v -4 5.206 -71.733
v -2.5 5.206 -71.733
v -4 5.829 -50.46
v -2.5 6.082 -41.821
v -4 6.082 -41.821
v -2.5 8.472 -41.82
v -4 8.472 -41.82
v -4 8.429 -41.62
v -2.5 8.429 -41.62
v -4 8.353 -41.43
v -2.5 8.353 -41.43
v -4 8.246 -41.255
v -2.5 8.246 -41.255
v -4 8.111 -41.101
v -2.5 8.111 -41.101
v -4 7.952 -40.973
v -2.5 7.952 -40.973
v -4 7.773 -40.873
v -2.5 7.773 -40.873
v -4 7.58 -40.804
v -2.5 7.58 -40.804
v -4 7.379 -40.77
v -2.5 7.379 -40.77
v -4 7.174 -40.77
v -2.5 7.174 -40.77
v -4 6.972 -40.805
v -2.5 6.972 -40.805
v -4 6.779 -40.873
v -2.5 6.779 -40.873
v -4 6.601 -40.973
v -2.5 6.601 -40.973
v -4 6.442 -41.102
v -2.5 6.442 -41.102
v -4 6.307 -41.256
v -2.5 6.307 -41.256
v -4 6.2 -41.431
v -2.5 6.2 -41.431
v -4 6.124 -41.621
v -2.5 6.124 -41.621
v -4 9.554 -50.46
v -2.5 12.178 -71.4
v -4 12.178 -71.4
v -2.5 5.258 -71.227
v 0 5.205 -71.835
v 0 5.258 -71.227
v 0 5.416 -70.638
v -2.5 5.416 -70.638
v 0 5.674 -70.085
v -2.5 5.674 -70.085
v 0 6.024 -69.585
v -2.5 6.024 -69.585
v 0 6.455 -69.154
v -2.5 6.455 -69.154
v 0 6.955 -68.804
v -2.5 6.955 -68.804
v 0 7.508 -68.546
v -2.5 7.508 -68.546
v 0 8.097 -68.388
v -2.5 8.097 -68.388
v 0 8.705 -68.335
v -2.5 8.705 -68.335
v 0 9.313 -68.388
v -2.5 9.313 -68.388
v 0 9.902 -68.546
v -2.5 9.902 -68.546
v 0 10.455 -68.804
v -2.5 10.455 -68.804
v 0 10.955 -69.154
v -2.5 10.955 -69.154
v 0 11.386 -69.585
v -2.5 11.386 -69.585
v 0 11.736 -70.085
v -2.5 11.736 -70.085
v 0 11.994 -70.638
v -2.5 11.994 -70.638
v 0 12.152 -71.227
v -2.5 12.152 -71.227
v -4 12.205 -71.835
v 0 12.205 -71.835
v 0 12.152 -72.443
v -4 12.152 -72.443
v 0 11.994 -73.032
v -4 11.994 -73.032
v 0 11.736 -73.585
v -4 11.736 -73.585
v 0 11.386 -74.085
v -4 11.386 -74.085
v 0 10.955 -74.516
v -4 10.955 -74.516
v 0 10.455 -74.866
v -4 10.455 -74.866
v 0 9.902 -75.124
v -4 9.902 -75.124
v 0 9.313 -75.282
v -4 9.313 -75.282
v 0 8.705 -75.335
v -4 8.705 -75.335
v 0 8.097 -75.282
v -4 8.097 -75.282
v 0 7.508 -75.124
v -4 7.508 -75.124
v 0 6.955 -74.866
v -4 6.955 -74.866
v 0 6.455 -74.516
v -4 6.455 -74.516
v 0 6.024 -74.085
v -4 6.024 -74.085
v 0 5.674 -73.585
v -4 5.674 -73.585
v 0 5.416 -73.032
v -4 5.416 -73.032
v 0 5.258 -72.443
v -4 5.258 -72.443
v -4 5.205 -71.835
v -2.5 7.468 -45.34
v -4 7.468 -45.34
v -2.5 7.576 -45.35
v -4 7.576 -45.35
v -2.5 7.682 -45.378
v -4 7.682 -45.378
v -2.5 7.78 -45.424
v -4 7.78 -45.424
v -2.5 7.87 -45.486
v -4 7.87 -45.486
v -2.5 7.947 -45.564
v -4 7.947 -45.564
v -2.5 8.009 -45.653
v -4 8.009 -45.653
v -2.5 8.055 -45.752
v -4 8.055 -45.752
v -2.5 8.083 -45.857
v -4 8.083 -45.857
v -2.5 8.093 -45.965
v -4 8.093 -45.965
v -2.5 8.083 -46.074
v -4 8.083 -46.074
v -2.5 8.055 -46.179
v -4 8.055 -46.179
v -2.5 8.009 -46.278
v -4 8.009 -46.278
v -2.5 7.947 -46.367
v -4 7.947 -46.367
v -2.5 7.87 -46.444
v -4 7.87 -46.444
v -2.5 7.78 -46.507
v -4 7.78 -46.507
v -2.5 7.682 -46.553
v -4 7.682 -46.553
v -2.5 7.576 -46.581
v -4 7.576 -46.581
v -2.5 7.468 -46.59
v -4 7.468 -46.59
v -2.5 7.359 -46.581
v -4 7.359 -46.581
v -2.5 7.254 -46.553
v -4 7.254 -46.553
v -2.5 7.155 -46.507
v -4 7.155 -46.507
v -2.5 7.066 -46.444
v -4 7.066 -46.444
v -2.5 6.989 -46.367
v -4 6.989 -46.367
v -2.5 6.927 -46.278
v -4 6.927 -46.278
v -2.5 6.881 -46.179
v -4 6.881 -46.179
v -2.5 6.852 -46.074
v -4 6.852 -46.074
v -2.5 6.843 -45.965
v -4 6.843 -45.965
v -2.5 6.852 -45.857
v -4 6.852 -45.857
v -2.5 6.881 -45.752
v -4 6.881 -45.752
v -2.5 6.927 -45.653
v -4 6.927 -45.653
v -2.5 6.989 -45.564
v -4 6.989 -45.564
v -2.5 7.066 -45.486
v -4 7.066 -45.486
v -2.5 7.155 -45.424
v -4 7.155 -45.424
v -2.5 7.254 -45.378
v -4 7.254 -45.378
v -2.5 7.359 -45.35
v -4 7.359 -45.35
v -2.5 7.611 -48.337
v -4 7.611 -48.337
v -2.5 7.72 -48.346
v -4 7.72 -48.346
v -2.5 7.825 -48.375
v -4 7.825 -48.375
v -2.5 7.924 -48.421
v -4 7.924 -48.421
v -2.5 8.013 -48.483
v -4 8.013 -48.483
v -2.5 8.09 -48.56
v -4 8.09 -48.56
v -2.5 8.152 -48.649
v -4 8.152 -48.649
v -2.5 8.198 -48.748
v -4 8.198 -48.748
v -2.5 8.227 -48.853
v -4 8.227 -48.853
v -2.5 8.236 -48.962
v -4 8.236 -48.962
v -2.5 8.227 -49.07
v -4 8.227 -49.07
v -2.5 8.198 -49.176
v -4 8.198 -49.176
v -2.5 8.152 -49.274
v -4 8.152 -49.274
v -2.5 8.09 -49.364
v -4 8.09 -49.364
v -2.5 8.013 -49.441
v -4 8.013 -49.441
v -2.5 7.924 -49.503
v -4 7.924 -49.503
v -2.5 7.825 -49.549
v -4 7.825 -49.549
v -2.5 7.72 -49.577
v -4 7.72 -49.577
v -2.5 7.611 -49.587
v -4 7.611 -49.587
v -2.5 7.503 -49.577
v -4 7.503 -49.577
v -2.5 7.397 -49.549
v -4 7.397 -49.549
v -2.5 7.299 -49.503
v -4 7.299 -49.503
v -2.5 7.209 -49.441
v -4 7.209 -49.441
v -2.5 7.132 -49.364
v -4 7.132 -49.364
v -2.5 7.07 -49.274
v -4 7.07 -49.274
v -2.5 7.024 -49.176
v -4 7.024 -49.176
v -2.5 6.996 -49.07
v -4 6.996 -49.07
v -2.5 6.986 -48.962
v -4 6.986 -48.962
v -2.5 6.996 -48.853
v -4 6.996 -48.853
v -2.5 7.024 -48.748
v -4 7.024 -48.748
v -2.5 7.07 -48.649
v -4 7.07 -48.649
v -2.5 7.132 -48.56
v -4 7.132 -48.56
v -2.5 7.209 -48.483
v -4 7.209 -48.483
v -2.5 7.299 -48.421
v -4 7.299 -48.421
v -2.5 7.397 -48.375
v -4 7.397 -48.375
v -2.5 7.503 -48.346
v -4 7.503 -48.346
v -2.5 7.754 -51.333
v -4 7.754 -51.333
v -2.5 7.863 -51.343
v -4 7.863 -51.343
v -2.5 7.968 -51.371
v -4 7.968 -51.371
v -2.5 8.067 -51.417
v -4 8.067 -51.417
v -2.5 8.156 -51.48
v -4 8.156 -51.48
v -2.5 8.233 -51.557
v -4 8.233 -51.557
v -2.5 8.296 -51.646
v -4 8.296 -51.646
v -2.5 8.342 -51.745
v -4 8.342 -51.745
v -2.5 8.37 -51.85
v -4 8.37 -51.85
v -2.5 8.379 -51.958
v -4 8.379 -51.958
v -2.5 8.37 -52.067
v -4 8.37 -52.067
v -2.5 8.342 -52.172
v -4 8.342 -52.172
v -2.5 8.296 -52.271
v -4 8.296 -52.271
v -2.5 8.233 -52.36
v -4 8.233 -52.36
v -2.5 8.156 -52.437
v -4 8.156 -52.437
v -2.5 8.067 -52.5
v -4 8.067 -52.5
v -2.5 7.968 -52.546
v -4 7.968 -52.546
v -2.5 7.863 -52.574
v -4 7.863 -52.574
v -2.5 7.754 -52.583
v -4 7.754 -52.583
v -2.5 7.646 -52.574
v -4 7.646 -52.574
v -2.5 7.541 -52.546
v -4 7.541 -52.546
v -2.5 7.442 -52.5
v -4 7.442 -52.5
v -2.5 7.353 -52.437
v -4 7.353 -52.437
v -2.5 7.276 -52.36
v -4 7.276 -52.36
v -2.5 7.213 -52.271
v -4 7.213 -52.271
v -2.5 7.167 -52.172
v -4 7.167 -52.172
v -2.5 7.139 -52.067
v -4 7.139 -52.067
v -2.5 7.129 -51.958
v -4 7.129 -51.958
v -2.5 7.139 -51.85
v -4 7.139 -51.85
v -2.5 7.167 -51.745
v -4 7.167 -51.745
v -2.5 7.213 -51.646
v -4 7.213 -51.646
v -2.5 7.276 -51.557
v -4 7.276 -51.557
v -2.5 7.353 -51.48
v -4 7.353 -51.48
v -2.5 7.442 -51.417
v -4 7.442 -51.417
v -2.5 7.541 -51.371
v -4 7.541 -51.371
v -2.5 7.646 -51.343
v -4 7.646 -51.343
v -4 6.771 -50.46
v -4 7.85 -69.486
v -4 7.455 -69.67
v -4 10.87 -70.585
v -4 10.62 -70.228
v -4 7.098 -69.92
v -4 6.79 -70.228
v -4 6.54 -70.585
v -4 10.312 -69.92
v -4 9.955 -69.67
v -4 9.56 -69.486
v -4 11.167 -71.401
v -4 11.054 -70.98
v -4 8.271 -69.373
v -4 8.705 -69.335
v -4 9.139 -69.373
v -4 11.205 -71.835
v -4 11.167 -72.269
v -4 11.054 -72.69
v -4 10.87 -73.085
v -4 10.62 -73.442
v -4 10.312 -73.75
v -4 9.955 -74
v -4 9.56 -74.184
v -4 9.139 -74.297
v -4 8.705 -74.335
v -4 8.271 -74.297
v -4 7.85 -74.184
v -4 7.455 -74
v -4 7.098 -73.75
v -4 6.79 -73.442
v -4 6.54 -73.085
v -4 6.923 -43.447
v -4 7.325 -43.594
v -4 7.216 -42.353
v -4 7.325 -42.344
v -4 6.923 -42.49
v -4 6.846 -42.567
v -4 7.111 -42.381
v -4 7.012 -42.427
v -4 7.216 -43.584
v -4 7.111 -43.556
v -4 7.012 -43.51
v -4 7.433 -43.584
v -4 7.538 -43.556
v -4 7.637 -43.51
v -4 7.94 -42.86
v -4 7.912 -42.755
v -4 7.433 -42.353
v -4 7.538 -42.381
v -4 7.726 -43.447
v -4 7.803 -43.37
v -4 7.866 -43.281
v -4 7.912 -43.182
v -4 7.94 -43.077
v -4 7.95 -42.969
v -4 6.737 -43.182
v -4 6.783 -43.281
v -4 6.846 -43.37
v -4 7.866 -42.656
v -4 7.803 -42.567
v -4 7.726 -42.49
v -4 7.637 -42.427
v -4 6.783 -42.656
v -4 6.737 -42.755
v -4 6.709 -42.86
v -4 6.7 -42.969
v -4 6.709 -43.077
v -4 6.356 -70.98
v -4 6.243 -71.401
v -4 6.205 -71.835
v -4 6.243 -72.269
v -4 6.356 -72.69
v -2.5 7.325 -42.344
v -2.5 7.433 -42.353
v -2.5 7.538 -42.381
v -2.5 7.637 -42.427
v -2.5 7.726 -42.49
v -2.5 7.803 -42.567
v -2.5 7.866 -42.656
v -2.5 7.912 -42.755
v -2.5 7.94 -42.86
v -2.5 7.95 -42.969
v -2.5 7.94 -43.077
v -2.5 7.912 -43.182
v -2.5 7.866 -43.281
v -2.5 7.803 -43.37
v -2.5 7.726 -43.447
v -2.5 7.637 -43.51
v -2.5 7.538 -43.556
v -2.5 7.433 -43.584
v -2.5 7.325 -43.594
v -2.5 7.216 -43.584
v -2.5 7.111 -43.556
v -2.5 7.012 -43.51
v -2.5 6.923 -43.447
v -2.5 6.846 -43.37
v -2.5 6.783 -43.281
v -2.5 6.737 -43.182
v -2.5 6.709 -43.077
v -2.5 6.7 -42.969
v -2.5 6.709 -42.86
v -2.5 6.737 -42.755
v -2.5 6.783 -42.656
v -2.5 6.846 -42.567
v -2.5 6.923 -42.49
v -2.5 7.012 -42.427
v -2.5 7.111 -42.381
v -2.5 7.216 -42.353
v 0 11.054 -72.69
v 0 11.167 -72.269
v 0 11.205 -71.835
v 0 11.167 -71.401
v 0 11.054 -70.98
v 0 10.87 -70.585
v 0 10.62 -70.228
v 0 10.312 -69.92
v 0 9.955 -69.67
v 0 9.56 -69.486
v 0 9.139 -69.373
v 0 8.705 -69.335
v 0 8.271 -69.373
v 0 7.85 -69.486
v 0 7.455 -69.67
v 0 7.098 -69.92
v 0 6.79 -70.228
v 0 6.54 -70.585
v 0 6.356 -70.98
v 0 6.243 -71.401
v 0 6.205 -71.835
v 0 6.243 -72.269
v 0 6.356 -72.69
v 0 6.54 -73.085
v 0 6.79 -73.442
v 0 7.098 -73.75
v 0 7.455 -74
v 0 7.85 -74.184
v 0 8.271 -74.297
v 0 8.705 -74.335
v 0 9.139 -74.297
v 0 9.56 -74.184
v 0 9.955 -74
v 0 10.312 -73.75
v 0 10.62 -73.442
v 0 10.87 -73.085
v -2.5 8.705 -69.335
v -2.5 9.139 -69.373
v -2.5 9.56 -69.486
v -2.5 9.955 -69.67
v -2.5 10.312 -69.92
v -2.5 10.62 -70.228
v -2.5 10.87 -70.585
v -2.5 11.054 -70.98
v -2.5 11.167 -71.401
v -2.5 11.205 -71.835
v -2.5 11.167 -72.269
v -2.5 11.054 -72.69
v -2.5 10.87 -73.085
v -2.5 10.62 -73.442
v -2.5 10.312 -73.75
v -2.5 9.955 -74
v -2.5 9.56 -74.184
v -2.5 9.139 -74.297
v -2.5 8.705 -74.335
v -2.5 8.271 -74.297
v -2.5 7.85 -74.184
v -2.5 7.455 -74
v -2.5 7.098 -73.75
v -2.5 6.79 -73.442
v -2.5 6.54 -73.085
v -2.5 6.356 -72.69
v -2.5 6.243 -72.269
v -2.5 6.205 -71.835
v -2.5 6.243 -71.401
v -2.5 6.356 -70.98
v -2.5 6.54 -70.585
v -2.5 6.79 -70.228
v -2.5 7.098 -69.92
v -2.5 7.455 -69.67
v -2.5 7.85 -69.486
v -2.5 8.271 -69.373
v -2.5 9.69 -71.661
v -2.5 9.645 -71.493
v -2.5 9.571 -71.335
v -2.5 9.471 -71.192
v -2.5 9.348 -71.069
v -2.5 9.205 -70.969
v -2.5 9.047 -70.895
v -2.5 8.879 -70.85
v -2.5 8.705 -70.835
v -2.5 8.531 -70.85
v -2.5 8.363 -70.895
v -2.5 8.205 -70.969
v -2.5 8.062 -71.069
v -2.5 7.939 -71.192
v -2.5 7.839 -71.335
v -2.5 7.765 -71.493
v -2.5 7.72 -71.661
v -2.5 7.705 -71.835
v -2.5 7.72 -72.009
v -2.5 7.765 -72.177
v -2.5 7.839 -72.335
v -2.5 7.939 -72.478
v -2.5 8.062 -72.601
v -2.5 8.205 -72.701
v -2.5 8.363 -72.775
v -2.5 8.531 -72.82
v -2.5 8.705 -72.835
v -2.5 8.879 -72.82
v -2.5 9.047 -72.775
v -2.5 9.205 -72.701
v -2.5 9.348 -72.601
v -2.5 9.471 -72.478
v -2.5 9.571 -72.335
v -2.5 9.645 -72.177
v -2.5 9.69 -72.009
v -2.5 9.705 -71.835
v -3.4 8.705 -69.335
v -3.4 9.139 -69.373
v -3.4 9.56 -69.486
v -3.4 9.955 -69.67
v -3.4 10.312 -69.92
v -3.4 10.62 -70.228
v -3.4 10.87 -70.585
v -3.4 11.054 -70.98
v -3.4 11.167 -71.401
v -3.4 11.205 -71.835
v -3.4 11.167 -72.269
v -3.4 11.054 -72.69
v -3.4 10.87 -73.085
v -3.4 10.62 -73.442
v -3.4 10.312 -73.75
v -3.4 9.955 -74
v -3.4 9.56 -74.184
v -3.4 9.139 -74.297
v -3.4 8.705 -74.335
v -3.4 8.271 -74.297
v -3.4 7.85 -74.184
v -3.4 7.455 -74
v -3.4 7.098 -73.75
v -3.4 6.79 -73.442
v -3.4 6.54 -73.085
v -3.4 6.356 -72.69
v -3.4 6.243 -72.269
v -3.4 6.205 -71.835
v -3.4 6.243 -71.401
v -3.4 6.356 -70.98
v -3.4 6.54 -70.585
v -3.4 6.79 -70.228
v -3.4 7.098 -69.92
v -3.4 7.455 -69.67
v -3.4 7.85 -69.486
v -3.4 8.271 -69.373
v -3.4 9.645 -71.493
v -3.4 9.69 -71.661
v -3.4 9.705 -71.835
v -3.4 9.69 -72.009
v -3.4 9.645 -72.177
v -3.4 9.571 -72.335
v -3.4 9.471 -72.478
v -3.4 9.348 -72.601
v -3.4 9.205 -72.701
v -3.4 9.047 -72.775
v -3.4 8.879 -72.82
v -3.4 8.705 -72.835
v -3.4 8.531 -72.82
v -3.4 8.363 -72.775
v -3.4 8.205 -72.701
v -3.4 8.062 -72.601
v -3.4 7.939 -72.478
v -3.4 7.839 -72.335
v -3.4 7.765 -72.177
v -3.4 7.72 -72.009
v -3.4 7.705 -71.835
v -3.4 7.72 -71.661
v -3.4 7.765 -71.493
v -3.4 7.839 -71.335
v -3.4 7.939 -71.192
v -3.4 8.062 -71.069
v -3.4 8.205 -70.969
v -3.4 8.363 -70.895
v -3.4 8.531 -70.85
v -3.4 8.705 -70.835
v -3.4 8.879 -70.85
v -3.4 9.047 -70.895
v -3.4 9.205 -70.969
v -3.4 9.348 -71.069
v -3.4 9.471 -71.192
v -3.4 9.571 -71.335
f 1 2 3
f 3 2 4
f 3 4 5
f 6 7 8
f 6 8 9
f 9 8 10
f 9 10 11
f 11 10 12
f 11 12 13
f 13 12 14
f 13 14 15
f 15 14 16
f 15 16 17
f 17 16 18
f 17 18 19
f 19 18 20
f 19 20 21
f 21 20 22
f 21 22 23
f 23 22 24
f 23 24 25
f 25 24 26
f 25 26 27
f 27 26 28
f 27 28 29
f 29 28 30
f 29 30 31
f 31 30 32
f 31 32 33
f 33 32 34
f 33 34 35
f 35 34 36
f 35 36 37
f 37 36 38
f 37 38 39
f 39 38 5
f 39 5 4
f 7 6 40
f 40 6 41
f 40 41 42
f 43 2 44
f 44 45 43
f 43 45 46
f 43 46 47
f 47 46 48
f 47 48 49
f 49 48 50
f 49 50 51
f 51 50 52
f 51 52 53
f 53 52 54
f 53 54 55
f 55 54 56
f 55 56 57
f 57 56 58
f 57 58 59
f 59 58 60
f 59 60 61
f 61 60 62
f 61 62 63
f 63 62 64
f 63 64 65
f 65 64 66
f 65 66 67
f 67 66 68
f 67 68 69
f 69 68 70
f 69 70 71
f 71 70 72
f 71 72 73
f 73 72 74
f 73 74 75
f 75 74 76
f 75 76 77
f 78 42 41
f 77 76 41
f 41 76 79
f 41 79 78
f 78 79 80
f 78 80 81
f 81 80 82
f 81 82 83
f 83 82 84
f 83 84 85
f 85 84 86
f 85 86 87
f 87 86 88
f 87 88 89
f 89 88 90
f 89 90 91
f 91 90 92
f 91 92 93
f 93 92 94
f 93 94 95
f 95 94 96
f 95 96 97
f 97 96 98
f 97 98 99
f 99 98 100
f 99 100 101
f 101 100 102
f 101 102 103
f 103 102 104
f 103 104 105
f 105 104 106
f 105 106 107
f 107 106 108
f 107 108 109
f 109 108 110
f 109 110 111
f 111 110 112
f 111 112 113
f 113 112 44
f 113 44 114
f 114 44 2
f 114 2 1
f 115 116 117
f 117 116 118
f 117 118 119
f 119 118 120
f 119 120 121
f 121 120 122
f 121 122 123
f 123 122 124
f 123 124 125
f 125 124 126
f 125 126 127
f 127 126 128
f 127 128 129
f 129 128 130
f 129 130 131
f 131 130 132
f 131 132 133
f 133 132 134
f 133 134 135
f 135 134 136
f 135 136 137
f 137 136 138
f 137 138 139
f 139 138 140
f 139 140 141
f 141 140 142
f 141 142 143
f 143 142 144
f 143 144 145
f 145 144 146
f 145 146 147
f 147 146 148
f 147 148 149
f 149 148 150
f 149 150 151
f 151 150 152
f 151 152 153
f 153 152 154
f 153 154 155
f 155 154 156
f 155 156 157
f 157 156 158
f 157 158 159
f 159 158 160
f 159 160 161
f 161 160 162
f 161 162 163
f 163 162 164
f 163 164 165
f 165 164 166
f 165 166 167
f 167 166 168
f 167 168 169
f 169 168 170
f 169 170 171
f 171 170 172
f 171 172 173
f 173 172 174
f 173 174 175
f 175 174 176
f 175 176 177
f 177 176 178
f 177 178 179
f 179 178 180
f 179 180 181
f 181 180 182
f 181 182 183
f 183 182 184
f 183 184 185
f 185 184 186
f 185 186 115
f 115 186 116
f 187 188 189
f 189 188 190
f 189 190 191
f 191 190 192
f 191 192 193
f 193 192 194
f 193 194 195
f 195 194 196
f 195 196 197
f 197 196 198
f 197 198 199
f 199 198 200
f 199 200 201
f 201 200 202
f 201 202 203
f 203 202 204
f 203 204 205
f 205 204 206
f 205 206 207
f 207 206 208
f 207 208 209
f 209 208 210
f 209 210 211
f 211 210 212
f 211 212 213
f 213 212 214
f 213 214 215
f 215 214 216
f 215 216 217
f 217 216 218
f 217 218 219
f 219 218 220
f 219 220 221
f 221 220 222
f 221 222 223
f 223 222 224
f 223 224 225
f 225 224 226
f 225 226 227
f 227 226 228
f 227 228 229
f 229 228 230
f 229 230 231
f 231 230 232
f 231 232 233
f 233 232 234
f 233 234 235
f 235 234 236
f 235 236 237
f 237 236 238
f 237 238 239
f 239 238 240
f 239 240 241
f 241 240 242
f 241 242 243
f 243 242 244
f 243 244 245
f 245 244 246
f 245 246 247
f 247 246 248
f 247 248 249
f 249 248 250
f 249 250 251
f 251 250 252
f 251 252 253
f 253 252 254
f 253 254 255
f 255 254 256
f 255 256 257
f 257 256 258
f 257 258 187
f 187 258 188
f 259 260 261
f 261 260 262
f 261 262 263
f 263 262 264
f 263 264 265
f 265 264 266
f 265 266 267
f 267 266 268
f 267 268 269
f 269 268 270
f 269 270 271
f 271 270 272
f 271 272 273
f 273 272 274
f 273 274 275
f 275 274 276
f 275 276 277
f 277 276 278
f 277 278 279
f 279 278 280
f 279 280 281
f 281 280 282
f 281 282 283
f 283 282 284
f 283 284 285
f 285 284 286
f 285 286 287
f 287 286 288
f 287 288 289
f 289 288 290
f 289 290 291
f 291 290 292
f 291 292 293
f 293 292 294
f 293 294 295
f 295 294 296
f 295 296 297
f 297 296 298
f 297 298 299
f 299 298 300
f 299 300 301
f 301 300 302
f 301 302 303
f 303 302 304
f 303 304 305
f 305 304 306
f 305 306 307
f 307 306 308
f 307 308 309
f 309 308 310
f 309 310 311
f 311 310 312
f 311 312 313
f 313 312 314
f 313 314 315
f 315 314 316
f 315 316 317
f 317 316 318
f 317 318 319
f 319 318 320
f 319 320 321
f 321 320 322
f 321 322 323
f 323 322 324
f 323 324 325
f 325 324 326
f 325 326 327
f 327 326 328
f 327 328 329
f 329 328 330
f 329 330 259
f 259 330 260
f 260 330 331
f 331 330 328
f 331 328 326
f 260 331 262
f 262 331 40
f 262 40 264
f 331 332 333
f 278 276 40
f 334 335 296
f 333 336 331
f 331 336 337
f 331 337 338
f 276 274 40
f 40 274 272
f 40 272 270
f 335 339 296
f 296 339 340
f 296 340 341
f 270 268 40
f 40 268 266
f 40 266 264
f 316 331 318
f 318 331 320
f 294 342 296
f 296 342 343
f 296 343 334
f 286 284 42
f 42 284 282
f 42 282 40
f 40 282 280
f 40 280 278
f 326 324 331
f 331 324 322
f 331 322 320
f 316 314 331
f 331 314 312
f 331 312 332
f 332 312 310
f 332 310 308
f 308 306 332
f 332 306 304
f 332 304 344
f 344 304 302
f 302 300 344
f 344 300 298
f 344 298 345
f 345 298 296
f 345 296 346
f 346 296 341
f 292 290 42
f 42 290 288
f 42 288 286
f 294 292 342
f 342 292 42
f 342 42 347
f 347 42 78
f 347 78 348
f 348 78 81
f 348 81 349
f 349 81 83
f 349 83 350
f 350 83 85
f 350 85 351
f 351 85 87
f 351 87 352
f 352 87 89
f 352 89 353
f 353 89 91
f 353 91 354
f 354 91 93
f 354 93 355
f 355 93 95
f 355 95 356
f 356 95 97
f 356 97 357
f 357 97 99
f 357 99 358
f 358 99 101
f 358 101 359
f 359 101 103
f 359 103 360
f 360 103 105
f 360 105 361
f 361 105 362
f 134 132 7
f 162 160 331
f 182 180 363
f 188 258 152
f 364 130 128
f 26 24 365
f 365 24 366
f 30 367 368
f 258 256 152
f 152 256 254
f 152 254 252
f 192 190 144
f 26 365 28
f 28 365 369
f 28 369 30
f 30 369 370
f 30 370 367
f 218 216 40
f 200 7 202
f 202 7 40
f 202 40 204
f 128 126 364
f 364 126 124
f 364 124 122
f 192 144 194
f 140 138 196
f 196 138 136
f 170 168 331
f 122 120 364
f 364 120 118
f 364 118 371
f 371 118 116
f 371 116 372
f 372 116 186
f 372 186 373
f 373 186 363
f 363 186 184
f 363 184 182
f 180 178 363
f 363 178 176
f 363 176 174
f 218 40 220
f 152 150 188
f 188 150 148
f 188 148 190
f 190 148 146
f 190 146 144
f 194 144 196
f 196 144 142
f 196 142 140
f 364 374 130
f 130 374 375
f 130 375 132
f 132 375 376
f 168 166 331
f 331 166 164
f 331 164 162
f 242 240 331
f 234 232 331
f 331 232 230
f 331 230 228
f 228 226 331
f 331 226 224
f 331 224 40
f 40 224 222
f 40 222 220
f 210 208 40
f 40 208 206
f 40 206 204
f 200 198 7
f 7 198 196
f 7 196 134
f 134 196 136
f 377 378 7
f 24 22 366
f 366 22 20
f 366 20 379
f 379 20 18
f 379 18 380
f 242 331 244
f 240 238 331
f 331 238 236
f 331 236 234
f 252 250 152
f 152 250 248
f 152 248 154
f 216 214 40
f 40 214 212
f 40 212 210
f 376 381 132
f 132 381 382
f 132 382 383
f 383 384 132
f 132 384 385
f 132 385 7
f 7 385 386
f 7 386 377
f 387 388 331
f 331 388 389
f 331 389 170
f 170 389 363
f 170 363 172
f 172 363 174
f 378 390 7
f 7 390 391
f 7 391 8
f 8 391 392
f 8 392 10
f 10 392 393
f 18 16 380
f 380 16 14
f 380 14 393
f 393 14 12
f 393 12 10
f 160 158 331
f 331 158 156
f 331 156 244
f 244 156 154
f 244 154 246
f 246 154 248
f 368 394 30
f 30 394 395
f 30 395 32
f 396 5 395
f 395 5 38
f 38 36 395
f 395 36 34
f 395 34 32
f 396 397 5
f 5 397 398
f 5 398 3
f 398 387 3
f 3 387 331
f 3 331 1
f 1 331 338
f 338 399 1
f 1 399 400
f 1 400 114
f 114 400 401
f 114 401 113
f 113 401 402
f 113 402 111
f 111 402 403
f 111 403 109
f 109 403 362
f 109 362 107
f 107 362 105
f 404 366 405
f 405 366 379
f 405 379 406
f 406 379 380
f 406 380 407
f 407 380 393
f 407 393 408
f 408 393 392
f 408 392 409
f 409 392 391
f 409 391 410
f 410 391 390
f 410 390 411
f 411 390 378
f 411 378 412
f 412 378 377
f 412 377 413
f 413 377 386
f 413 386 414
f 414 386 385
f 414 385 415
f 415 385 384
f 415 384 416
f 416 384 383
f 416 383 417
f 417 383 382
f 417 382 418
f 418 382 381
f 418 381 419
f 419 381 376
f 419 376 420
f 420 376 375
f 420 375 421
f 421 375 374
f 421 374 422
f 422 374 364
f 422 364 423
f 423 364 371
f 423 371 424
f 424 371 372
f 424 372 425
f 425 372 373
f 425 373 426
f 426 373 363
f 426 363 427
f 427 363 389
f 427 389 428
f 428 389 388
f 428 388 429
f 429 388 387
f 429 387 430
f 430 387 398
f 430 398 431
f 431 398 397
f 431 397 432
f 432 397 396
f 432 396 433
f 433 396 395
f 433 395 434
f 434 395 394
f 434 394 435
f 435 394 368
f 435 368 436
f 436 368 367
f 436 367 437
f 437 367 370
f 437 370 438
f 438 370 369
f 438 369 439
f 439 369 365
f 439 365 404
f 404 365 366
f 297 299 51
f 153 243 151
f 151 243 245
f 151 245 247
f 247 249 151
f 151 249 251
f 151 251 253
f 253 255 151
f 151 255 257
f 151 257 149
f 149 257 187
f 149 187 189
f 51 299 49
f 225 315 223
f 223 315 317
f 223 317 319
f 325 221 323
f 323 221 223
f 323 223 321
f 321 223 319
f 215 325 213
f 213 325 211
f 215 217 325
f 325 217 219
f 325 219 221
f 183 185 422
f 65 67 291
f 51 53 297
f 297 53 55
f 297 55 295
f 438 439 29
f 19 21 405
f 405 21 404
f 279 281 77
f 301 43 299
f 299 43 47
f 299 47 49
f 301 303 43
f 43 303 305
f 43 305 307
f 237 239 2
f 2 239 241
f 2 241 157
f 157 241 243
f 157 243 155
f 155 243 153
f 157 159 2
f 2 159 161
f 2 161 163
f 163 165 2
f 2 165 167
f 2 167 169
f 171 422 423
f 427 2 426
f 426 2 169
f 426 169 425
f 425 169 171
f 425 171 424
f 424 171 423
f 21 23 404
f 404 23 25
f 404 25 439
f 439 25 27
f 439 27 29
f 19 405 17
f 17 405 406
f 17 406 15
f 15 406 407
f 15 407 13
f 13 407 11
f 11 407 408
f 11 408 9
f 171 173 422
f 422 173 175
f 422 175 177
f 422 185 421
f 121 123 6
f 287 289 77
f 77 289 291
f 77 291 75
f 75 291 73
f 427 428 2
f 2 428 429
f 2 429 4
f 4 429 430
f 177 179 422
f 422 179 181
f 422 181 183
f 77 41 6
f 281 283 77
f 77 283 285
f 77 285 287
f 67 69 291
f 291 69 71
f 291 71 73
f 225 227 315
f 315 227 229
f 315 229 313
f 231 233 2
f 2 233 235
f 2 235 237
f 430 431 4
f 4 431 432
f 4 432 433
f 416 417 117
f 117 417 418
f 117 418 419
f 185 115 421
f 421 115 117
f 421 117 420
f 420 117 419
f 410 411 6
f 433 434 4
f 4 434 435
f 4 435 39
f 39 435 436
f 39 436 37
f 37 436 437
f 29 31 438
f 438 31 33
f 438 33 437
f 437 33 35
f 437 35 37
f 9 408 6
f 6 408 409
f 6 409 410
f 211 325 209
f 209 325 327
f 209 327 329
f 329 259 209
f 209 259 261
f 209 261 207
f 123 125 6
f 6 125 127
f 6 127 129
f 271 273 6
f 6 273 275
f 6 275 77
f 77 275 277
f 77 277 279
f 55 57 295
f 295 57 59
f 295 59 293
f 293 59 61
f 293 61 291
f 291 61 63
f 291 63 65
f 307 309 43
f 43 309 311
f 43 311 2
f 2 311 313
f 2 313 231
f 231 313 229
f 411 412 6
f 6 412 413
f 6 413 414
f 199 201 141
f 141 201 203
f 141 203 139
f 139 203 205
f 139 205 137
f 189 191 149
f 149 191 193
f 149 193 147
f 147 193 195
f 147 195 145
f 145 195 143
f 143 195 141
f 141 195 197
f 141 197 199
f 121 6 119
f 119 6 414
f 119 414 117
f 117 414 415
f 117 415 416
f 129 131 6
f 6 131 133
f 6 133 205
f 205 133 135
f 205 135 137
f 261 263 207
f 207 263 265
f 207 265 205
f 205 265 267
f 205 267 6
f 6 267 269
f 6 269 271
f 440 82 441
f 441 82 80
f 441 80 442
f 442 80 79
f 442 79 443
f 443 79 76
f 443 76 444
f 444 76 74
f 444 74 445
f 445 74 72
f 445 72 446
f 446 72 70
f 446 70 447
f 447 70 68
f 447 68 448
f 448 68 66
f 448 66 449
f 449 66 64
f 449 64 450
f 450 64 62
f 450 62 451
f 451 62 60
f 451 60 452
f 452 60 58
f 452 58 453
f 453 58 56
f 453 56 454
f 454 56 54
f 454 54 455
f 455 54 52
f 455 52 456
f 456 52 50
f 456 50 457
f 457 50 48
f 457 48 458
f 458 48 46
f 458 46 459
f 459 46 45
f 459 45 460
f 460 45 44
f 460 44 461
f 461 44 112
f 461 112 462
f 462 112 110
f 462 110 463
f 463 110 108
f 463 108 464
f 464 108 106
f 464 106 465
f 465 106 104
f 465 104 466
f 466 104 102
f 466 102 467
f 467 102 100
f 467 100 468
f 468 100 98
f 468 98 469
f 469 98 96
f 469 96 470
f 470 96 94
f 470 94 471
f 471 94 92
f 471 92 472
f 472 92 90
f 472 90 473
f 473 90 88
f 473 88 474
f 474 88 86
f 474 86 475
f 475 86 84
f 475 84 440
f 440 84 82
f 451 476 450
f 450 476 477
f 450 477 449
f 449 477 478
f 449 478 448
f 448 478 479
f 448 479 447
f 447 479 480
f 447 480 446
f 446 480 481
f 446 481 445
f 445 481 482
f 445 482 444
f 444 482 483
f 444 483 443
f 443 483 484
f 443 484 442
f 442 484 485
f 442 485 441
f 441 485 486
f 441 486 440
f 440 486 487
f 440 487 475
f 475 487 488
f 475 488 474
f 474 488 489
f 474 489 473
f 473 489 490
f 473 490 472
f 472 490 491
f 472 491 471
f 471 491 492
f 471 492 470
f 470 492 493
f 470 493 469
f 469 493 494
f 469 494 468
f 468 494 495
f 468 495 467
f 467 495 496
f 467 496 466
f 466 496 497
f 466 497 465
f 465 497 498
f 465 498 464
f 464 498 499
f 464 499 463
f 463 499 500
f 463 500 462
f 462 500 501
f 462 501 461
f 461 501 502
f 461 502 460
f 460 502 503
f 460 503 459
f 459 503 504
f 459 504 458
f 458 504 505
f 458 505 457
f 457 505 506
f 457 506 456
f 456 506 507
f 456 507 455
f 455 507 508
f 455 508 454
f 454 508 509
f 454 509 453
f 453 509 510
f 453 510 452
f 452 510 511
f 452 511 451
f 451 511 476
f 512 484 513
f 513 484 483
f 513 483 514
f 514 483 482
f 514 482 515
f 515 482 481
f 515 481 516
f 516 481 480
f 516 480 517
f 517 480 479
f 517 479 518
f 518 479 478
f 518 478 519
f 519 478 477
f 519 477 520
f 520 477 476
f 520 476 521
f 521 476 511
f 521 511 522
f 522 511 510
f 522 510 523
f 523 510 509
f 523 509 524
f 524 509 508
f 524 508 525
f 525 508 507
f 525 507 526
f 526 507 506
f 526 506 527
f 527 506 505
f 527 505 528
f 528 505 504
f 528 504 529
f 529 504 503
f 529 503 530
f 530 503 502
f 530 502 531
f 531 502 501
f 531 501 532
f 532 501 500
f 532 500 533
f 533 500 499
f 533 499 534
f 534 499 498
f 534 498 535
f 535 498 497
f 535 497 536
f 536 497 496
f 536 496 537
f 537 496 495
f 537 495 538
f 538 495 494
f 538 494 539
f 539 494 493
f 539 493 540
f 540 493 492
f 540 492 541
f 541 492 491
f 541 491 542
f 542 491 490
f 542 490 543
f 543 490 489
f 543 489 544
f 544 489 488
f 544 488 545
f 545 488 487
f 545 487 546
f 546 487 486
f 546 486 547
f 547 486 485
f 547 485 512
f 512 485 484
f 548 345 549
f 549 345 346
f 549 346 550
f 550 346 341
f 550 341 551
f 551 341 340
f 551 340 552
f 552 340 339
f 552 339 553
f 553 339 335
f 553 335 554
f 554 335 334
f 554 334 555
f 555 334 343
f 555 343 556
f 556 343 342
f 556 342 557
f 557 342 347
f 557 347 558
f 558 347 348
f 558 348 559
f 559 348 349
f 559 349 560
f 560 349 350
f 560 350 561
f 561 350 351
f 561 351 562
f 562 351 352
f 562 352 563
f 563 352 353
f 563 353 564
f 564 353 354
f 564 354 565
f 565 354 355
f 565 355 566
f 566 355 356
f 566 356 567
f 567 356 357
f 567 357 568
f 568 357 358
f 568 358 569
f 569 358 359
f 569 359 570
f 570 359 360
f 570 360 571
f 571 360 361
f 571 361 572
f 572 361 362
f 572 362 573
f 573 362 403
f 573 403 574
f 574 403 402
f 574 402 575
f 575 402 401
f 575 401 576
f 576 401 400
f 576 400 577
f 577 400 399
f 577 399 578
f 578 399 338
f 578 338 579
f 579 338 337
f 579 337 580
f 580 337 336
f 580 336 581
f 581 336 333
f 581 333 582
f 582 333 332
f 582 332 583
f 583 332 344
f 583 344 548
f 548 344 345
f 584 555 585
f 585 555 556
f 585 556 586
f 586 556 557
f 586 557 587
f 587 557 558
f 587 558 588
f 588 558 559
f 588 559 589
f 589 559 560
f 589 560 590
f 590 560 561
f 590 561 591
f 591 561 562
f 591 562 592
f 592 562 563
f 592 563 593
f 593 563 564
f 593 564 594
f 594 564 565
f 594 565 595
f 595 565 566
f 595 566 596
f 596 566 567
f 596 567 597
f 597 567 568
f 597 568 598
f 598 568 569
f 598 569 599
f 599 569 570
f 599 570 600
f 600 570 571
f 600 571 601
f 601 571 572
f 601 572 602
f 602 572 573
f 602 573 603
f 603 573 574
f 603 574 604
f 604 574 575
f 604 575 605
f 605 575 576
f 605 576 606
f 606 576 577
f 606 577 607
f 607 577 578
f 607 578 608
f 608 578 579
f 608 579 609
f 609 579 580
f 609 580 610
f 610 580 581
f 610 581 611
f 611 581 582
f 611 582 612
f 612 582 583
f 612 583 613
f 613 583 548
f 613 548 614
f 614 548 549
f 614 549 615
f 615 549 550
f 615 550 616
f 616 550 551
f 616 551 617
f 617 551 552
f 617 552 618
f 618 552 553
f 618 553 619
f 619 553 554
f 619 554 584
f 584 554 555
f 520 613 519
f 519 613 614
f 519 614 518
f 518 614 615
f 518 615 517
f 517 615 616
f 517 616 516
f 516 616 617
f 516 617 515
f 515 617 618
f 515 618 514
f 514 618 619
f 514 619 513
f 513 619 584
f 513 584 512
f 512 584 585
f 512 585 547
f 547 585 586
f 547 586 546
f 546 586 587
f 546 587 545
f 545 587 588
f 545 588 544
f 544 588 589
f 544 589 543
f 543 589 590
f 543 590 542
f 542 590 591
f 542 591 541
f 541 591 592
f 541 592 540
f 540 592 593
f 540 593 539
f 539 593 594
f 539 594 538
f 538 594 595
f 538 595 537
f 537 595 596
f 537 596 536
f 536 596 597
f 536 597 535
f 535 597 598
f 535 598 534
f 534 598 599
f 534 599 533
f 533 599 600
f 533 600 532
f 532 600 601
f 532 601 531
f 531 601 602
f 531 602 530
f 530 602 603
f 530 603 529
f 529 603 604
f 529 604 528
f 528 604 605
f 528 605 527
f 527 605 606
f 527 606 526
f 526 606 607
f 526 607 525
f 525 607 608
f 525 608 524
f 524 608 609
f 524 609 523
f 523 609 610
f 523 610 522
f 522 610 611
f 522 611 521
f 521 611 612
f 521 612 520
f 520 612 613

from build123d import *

# Parameters (mm, degrees)
BASE_SKETCH_R            = 0.625
BASE_EXTRUDE_DEPTH       = 1.5
CIRCLE_SKETCH_R          = 3.5
CIRCLE_SKETCH_R_2        = 2.5
CIRCLE_EXTRUDE_DEPTH     = 2.5
SCREW_CIRCLE1_SKETCH_R   = 2.5
SCREW_CIRCLE_1_CUT_DEPTH = 0.6
SCREW_CIRCLE2_SKETCH_R   = 1
SCREW_CIRCLE_CUT_DEPTH   = 77.422014171


with BuildPart() as part:
    # Base Sketch → Base Extrude (new body)
    with BuildSketch(Plane.ZY.offset(4)):
        with BuildLine():
            Line((-71.399880191, 12.177847643), (-41.820115259, 8.471741587))
            ThreePointArc((-41.820115259, 8.471741587), (-40.765509681, 7.276309847), (-41.821002543, 6.081661451))
            Line((-41.821002543, 6.081661451), (-71.732639675, 5.206497125))
            ThreePointArc((-71.732639675, 5.206497125), (-75.331019627, 8.871873504), (-71.399880191, 12.177847643))
        make_face()
        with Locations((-45.965270944, 7.46783075)):
            Circle(BASE_SKETCH_R, mode=Mode.SUBTRACT)
        with Locations((-48.961846252, 7.611136109)):
            Circle(BASE_SKETCH_R, mode=Mode.SUBTRACT)
        with Locations((-51.958421559, 7.754441469)):
            Circle(BASE_SKETCH_R, mode=Mode.SUBTRACT)
        with Locations((-42.968695636, 7.32452539)):
            Circle(BASE_SKETCH_R, mode=Mode.SUBTRACT)
    extrude(amount=-BASE_EXTRUDE_DEPTH)

    # Circle Sketch → Circle Extrude (add)
    with BuildSketch(Plane(origin=(-2.5, 0, 0), x_dir=(0, 0, -1), z_dir=(1, 0, 0))):
        with Locations(Location((71.835, 8.705, 0), (0, 0, 97.141485201))):
            Circle(CIRCLE_SKETCH_R)
        with Locations((71.835, 8.705)):
            Circle(CIRCLE_SKETCH_R_2, mode=Mode.SUBTRACT)
    extrude(amount=CIRCLE_EXTRUDE_DEPTH)

    # Screw Circle1 Sketch → Screw Circle 1 Cut (cut)
    with BuildSketch(Plane.ZY.offset(4)):
        with Locations(Location((-71.835, 8.705, 0), (0, 0, 180))):
            Circle(SCREW_CIRCLE1_SKETCH_R)
    extrude(amount=-SCREW_CIRCLE_1_CUT_DEPTH, mode=Mode.SUBTRACT)

    # Screw Circle2 Sketch → Screw Circle Cut (cut, through all)
    with BuildSketch(Plane.ZY.offset(4)):
        with Locations((-71.835, 8.705)):
            Circle(SCREW_CIRCLE2_SKETCH_R)
    extrude(amount=-SCREW_CIRCLE_CUT_DEPTH, mode=Mode.SUBTRACT)


solid = part.part
